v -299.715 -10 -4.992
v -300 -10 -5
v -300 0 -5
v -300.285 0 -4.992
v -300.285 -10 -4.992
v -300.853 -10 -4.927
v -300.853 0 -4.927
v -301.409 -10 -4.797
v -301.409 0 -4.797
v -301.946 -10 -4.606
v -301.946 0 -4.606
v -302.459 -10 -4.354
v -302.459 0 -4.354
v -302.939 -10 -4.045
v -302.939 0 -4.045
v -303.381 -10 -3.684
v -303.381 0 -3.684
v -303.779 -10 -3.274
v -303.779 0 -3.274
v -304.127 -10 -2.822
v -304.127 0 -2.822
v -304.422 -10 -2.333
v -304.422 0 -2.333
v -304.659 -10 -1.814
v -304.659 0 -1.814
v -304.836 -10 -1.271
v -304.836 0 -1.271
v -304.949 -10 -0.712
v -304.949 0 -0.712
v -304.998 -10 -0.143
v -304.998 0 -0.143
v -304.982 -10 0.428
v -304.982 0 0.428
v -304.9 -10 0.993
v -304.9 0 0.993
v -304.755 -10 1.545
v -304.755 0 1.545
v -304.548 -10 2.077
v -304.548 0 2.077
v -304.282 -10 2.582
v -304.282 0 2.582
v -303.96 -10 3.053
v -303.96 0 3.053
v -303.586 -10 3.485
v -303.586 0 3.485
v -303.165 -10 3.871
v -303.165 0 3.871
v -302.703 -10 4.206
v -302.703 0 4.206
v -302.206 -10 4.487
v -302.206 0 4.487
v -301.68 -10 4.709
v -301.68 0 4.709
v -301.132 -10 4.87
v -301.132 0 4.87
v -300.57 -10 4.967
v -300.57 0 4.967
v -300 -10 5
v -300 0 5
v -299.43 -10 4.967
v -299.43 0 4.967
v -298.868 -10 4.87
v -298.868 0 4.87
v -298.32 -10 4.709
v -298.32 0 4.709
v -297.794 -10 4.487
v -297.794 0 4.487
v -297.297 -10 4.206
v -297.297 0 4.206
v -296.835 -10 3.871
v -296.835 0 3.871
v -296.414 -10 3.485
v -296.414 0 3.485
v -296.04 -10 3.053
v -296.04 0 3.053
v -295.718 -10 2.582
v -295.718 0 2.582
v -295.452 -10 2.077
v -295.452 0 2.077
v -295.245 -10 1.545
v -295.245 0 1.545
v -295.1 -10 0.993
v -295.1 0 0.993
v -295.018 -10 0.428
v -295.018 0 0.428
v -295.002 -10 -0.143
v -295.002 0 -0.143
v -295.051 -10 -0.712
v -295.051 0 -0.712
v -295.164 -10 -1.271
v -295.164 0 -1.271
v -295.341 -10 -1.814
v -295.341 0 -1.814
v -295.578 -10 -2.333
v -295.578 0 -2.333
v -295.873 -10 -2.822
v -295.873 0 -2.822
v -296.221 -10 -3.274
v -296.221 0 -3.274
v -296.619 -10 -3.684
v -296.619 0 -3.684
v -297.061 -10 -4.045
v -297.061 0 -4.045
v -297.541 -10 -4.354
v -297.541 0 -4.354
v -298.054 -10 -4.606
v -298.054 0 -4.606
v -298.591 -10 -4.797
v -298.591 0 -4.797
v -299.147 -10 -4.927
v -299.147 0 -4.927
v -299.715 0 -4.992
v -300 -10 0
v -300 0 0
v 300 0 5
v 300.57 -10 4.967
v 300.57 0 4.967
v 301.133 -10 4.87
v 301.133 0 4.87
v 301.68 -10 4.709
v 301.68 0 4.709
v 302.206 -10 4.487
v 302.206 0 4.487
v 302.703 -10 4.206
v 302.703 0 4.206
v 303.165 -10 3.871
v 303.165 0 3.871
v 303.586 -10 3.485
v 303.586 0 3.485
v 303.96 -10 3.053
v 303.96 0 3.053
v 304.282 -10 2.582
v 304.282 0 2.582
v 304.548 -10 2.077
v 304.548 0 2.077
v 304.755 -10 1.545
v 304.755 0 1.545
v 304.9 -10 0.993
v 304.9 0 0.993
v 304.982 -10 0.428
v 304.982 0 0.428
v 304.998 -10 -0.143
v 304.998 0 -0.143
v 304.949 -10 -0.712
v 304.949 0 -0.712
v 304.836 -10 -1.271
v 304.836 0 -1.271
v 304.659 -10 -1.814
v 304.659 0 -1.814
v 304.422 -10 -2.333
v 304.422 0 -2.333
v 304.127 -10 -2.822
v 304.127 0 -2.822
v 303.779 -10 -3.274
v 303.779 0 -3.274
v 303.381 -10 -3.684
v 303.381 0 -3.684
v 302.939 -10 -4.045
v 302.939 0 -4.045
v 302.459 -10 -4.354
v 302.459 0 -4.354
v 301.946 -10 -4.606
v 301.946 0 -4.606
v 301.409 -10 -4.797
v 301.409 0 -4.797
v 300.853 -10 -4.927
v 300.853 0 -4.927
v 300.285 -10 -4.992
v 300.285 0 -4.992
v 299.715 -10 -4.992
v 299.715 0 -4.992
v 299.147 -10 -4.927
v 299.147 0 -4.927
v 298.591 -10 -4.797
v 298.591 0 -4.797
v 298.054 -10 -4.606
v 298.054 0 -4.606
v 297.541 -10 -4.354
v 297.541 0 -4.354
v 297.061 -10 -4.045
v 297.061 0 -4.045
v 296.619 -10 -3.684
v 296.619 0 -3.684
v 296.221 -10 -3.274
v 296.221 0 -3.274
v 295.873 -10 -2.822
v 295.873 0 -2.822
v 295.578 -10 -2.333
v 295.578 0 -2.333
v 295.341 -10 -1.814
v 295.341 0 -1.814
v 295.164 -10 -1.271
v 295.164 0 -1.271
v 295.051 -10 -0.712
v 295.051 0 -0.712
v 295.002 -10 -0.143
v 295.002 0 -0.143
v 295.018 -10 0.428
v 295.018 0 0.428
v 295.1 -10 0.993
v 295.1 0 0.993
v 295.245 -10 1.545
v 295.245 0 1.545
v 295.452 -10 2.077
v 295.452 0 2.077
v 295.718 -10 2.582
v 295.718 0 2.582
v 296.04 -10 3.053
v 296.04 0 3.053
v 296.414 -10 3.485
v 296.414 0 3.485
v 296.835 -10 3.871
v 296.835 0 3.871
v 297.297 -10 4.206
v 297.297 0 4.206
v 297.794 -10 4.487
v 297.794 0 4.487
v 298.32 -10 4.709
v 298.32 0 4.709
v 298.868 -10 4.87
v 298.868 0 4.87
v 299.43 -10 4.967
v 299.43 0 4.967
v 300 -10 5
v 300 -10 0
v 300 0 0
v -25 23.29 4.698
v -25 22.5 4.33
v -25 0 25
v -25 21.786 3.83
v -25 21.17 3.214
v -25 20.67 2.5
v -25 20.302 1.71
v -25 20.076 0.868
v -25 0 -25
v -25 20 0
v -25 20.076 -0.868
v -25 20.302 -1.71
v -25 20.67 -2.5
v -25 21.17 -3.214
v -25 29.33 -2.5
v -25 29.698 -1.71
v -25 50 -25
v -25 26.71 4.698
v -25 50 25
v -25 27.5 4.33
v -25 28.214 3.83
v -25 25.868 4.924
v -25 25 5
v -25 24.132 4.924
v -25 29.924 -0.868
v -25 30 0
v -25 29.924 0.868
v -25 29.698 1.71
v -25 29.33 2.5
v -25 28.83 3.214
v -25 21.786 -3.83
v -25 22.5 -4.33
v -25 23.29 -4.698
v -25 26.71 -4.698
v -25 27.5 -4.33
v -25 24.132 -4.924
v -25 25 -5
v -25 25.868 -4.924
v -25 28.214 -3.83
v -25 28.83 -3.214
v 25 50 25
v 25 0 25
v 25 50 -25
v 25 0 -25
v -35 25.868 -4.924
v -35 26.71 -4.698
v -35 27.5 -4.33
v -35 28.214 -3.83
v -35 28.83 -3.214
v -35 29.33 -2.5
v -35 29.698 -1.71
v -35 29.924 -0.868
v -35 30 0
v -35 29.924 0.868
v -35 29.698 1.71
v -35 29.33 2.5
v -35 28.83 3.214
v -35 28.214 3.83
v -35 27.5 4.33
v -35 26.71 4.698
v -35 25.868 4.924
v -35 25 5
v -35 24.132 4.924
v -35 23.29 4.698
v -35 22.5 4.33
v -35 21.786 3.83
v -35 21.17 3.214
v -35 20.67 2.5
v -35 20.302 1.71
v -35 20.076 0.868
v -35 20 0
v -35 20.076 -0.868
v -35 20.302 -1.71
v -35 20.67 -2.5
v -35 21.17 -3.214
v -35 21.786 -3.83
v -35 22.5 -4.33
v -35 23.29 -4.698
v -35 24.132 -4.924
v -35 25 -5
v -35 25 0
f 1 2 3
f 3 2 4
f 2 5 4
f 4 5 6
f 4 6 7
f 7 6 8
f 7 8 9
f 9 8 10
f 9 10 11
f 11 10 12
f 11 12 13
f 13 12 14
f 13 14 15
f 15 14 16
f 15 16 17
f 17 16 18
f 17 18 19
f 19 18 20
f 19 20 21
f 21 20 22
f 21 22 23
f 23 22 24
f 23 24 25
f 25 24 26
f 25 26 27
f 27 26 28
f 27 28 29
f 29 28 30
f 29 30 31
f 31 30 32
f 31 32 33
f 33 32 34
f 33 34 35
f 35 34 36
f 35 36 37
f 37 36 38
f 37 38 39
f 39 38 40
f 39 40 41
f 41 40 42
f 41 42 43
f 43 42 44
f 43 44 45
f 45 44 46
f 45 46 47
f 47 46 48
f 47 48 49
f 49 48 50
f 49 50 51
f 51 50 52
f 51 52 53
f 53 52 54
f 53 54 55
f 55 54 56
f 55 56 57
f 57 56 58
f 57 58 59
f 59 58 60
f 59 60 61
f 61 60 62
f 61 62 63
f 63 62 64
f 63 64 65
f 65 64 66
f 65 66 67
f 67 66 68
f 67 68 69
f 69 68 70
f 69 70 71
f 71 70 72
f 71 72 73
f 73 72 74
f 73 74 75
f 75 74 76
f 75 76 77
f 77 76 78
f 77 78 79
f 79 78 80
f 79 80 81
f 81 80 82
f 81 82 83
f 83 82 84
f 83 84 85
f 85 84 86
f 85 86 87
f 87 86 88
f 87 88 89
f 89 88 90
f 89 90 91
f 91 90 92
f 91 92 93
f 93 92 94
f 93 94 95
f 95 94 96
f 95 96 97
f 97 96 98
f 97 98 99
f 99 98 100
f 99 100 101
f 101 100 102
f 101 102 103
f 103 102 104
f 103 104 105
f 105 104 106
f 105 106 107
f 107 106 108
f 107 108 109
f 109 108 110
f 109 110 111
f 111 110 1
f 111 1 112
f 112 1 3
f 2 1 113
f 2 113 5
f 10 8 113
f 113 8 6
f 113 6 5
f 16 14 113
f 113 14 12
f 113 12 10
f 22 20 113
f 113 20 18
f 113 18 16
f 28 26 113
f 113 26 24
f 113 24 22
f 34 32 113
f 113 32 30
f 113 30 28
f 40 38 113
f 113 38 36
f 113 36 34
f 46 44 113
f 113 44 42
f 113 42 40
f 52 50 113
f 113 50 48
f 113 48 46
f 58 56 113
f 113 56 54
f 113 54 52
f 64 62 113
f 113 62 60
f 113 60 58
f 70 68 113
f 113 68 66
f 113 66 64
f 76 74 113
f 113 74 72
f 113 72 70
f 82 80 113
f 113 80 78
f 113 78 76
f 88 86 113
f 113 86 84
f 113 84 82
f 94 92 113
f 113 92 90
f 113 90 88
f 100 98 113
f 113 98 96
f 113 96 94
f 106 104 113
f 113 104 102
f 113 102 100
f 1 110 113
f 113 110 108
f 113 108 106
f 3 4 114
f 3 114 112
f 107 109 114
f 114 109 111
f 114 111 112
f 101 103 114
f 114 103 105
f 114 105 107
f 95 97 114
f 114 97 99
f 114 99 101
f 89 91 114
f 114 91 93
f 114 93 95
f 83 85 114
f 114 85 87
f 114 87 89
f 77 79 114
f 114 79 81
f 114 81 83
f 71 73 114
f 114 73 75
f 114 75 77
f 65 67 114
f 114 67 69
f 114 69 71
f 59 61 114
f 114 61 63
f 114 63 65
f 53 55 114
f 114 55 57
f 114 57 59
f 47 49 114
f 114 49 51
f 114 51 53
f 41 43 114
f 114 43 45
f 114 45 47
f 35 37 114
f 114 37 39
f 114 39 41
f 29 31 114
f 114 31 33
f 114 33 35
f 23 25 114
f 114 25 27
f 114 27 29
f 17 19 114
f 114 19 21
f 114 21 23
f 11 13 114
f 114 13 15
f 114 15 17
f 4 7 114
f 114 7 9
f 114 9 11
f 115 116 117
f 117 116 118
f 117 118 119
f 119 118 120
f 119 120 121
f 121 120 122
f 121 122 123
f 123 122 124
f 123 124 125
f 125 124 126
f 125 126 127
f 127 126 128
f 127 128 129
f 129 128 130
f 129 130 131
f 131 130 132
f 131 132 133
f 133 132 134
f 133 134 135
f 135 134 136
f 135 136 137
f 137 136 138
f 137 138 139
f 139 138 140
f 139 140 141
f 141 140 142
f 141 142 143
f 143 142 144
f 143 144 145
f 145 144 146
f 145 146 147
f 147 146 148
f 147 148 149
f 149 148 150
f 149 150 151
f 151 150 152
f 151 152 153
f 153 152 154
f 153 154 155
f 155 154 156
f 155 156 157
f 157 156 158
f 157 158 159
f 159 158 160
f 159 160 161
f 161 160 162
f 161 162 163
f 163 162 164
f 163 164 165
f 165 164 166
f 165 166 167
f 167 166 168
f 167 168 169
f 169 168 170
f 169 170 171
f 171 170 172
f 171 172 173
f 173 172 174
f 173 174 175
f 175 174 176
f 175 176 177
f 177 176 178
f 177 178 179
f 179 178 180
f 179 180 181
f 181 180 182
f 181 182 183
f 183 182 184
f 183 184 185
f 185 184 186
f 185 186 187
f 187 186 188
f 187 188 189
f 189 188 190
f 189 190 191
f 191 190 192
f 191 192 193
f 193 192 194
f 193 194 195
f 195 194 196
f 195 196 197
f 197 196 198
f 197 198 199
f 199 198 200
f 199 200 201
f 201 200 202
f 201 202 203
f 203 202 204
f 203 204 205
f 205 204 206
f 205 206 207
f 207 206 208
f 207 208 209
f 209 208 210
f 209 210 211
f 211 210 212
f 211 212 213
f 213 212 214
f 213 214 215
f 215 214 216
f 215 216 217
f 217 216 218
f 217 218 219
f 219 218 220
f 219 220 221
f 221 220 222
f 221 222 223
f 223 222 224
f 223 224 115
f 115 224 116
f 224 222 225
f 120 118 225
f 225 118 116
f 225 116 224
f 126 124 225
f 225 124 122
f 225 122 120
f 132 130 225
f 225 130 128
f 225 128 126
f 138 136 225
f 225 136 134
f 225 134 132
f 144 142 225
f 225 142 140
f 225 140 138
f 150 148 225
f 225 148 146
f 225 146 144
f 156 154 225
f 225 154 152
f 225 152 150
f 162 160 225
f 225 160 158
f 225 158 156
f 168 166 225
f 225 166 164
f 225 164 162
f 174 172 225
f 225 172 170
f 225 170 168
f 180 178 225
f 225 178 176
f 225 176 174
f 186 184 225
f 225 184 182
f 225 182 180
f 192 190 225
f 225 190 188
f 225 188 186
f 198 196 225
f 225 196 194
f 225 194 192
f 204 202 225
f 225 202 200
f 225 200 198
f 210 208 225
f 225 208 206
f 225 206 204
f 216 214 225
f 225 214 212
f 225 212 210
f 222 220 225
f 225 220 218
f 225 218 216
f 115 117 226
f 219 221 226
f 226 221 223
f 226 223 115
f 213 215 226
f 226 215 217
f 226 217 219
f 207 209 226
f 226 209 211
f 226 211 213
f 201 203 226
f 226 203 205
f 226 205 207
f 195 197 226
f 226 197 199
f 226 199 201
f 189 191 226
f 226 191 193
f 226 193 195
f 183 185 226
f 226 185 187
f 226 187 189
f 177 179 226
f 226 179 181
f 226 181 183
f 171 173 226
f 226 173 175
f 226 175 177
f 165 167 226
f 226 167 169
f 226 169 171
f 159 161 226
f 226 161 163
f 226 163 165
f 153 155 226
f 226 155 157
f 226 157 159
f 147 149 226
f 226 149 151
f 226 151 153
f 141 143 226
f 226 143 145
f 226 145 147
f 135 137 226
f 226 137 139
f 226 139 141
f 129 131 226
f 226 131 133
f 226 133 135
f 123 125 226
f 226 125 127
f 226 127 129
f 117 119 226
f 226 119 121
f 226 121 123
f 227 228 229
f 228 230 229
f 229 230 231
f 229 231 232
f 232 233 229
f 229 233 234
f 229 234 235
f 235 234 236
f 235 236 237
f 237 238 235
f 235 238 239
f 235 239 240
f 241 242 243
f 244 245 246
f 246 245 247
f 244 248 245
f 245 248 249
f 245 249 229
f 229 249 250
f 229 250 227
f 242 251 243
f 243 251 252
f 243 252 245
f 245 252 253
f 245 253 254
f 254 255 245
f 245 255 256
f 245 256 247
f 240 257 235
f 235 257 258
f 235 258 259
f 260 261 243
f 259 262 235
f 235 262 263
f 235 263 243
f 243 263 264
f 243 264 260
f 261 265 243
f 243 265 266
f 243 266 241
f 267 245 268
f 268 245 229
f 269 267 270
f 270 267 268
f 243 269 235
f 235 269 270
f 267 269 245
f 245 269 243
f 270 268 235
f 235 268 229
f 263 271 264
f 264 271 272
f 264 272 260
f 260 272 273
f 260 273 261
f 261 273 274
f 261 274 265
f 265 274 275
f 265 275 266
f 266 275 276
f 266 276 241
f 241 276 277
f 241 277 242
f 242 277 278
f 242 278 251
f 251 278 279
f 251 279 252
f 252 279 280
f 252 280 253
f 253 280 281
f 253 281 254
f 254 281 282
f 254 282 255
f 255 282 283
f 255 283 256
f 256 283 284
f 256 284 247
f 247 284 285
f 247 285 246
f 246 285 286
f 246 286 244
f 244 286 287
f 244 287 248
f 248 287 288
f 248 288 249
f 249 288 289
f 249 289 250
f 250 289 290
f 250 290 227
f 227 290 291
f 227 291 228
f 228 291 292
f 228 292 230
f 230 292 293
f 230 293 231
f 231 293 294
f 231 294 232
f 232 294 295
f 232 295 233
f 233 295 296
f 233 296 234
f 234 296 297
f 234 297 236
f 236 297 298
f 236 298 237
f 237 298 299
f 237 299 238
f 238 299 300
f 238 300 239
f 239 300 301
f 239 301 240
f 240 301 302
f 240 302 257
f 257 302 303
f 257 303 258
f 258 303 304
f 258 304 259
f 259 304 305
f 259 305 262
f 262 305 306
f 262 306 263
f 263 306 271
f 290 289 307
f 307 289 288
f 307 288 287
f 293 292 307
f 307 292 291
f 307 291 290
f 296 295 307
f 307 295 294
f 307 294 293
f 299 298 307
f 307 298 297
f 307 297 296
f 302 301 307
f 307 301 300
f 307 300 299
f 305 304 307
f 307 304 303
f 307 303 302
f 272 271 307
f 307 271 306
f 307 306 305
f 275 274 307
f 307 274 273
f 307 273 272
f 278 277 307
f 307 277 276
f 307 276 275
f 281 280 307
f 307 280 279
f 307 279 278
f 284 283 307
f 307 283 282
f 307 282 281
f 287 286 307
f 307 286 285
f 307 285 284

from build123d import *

# Parameters (mm, degrees)
SKETCH1_W             = 50
SKETCH1_H             = 50
BOSS_EXTRUDE1_DEPTH   = 50
SKETCH2_R             = 5
BOSS_EXTRUDE2_DEPTH   = 10
BOSS_EXTRUDE2_2_DEPTH = 10
SKETCH3_R             = 5
BOSS_EXTRUDE3_DEPTH   = 10


with BuildPart() as part:
    # Sketch1 → Boss-Extrude1 (new body)
    with BuildSketch(Plane(origin=(0, 0, 0), x_dir=(1, 0, 0), z_dir=(0, 1, 0))):
        Rectangle(SKETCH1_W, SKETCH1_H)
    extrude(amount=BOSS_EXTRUDE1_DEPTH)

    # Sketch3 → Boss-Extrude3 (add)
    with BuildSketch(Plane.ZY.offset(25)):
        with Locations(Location((0, 25, 0), (0, 0, 180))):
            Circle(SKETCH3_R)
    extrude(amount=BOSS_EXTRUDE3_DEPTH)


with BuildPart() as body_2:
    # Sketch2 → Boss-Extrude2 (new body)
    with BuildSketch(Plane.XZ):
        with Locations(Location((-300, 0, 0), (0, 0, 270))):
            Circle(SKETCH2_R)
    extrude(amount=BOSS_EXTRUDE2_DEPTH)


with BuildPart() as body_3:
    # Sketch2 → Boss-Extrude2 2 (new body)
    with BuildSketch(Plane.XZ):
        with Locations(Location((300, 0, 0), (0, 0, 90))):
            Circle(SKETCH2_R)
    extrude(amount=BOSS_EXTRUDE2_2_DEPTH)


solid = Compound([part.part, body_2.part, body_3.part])
